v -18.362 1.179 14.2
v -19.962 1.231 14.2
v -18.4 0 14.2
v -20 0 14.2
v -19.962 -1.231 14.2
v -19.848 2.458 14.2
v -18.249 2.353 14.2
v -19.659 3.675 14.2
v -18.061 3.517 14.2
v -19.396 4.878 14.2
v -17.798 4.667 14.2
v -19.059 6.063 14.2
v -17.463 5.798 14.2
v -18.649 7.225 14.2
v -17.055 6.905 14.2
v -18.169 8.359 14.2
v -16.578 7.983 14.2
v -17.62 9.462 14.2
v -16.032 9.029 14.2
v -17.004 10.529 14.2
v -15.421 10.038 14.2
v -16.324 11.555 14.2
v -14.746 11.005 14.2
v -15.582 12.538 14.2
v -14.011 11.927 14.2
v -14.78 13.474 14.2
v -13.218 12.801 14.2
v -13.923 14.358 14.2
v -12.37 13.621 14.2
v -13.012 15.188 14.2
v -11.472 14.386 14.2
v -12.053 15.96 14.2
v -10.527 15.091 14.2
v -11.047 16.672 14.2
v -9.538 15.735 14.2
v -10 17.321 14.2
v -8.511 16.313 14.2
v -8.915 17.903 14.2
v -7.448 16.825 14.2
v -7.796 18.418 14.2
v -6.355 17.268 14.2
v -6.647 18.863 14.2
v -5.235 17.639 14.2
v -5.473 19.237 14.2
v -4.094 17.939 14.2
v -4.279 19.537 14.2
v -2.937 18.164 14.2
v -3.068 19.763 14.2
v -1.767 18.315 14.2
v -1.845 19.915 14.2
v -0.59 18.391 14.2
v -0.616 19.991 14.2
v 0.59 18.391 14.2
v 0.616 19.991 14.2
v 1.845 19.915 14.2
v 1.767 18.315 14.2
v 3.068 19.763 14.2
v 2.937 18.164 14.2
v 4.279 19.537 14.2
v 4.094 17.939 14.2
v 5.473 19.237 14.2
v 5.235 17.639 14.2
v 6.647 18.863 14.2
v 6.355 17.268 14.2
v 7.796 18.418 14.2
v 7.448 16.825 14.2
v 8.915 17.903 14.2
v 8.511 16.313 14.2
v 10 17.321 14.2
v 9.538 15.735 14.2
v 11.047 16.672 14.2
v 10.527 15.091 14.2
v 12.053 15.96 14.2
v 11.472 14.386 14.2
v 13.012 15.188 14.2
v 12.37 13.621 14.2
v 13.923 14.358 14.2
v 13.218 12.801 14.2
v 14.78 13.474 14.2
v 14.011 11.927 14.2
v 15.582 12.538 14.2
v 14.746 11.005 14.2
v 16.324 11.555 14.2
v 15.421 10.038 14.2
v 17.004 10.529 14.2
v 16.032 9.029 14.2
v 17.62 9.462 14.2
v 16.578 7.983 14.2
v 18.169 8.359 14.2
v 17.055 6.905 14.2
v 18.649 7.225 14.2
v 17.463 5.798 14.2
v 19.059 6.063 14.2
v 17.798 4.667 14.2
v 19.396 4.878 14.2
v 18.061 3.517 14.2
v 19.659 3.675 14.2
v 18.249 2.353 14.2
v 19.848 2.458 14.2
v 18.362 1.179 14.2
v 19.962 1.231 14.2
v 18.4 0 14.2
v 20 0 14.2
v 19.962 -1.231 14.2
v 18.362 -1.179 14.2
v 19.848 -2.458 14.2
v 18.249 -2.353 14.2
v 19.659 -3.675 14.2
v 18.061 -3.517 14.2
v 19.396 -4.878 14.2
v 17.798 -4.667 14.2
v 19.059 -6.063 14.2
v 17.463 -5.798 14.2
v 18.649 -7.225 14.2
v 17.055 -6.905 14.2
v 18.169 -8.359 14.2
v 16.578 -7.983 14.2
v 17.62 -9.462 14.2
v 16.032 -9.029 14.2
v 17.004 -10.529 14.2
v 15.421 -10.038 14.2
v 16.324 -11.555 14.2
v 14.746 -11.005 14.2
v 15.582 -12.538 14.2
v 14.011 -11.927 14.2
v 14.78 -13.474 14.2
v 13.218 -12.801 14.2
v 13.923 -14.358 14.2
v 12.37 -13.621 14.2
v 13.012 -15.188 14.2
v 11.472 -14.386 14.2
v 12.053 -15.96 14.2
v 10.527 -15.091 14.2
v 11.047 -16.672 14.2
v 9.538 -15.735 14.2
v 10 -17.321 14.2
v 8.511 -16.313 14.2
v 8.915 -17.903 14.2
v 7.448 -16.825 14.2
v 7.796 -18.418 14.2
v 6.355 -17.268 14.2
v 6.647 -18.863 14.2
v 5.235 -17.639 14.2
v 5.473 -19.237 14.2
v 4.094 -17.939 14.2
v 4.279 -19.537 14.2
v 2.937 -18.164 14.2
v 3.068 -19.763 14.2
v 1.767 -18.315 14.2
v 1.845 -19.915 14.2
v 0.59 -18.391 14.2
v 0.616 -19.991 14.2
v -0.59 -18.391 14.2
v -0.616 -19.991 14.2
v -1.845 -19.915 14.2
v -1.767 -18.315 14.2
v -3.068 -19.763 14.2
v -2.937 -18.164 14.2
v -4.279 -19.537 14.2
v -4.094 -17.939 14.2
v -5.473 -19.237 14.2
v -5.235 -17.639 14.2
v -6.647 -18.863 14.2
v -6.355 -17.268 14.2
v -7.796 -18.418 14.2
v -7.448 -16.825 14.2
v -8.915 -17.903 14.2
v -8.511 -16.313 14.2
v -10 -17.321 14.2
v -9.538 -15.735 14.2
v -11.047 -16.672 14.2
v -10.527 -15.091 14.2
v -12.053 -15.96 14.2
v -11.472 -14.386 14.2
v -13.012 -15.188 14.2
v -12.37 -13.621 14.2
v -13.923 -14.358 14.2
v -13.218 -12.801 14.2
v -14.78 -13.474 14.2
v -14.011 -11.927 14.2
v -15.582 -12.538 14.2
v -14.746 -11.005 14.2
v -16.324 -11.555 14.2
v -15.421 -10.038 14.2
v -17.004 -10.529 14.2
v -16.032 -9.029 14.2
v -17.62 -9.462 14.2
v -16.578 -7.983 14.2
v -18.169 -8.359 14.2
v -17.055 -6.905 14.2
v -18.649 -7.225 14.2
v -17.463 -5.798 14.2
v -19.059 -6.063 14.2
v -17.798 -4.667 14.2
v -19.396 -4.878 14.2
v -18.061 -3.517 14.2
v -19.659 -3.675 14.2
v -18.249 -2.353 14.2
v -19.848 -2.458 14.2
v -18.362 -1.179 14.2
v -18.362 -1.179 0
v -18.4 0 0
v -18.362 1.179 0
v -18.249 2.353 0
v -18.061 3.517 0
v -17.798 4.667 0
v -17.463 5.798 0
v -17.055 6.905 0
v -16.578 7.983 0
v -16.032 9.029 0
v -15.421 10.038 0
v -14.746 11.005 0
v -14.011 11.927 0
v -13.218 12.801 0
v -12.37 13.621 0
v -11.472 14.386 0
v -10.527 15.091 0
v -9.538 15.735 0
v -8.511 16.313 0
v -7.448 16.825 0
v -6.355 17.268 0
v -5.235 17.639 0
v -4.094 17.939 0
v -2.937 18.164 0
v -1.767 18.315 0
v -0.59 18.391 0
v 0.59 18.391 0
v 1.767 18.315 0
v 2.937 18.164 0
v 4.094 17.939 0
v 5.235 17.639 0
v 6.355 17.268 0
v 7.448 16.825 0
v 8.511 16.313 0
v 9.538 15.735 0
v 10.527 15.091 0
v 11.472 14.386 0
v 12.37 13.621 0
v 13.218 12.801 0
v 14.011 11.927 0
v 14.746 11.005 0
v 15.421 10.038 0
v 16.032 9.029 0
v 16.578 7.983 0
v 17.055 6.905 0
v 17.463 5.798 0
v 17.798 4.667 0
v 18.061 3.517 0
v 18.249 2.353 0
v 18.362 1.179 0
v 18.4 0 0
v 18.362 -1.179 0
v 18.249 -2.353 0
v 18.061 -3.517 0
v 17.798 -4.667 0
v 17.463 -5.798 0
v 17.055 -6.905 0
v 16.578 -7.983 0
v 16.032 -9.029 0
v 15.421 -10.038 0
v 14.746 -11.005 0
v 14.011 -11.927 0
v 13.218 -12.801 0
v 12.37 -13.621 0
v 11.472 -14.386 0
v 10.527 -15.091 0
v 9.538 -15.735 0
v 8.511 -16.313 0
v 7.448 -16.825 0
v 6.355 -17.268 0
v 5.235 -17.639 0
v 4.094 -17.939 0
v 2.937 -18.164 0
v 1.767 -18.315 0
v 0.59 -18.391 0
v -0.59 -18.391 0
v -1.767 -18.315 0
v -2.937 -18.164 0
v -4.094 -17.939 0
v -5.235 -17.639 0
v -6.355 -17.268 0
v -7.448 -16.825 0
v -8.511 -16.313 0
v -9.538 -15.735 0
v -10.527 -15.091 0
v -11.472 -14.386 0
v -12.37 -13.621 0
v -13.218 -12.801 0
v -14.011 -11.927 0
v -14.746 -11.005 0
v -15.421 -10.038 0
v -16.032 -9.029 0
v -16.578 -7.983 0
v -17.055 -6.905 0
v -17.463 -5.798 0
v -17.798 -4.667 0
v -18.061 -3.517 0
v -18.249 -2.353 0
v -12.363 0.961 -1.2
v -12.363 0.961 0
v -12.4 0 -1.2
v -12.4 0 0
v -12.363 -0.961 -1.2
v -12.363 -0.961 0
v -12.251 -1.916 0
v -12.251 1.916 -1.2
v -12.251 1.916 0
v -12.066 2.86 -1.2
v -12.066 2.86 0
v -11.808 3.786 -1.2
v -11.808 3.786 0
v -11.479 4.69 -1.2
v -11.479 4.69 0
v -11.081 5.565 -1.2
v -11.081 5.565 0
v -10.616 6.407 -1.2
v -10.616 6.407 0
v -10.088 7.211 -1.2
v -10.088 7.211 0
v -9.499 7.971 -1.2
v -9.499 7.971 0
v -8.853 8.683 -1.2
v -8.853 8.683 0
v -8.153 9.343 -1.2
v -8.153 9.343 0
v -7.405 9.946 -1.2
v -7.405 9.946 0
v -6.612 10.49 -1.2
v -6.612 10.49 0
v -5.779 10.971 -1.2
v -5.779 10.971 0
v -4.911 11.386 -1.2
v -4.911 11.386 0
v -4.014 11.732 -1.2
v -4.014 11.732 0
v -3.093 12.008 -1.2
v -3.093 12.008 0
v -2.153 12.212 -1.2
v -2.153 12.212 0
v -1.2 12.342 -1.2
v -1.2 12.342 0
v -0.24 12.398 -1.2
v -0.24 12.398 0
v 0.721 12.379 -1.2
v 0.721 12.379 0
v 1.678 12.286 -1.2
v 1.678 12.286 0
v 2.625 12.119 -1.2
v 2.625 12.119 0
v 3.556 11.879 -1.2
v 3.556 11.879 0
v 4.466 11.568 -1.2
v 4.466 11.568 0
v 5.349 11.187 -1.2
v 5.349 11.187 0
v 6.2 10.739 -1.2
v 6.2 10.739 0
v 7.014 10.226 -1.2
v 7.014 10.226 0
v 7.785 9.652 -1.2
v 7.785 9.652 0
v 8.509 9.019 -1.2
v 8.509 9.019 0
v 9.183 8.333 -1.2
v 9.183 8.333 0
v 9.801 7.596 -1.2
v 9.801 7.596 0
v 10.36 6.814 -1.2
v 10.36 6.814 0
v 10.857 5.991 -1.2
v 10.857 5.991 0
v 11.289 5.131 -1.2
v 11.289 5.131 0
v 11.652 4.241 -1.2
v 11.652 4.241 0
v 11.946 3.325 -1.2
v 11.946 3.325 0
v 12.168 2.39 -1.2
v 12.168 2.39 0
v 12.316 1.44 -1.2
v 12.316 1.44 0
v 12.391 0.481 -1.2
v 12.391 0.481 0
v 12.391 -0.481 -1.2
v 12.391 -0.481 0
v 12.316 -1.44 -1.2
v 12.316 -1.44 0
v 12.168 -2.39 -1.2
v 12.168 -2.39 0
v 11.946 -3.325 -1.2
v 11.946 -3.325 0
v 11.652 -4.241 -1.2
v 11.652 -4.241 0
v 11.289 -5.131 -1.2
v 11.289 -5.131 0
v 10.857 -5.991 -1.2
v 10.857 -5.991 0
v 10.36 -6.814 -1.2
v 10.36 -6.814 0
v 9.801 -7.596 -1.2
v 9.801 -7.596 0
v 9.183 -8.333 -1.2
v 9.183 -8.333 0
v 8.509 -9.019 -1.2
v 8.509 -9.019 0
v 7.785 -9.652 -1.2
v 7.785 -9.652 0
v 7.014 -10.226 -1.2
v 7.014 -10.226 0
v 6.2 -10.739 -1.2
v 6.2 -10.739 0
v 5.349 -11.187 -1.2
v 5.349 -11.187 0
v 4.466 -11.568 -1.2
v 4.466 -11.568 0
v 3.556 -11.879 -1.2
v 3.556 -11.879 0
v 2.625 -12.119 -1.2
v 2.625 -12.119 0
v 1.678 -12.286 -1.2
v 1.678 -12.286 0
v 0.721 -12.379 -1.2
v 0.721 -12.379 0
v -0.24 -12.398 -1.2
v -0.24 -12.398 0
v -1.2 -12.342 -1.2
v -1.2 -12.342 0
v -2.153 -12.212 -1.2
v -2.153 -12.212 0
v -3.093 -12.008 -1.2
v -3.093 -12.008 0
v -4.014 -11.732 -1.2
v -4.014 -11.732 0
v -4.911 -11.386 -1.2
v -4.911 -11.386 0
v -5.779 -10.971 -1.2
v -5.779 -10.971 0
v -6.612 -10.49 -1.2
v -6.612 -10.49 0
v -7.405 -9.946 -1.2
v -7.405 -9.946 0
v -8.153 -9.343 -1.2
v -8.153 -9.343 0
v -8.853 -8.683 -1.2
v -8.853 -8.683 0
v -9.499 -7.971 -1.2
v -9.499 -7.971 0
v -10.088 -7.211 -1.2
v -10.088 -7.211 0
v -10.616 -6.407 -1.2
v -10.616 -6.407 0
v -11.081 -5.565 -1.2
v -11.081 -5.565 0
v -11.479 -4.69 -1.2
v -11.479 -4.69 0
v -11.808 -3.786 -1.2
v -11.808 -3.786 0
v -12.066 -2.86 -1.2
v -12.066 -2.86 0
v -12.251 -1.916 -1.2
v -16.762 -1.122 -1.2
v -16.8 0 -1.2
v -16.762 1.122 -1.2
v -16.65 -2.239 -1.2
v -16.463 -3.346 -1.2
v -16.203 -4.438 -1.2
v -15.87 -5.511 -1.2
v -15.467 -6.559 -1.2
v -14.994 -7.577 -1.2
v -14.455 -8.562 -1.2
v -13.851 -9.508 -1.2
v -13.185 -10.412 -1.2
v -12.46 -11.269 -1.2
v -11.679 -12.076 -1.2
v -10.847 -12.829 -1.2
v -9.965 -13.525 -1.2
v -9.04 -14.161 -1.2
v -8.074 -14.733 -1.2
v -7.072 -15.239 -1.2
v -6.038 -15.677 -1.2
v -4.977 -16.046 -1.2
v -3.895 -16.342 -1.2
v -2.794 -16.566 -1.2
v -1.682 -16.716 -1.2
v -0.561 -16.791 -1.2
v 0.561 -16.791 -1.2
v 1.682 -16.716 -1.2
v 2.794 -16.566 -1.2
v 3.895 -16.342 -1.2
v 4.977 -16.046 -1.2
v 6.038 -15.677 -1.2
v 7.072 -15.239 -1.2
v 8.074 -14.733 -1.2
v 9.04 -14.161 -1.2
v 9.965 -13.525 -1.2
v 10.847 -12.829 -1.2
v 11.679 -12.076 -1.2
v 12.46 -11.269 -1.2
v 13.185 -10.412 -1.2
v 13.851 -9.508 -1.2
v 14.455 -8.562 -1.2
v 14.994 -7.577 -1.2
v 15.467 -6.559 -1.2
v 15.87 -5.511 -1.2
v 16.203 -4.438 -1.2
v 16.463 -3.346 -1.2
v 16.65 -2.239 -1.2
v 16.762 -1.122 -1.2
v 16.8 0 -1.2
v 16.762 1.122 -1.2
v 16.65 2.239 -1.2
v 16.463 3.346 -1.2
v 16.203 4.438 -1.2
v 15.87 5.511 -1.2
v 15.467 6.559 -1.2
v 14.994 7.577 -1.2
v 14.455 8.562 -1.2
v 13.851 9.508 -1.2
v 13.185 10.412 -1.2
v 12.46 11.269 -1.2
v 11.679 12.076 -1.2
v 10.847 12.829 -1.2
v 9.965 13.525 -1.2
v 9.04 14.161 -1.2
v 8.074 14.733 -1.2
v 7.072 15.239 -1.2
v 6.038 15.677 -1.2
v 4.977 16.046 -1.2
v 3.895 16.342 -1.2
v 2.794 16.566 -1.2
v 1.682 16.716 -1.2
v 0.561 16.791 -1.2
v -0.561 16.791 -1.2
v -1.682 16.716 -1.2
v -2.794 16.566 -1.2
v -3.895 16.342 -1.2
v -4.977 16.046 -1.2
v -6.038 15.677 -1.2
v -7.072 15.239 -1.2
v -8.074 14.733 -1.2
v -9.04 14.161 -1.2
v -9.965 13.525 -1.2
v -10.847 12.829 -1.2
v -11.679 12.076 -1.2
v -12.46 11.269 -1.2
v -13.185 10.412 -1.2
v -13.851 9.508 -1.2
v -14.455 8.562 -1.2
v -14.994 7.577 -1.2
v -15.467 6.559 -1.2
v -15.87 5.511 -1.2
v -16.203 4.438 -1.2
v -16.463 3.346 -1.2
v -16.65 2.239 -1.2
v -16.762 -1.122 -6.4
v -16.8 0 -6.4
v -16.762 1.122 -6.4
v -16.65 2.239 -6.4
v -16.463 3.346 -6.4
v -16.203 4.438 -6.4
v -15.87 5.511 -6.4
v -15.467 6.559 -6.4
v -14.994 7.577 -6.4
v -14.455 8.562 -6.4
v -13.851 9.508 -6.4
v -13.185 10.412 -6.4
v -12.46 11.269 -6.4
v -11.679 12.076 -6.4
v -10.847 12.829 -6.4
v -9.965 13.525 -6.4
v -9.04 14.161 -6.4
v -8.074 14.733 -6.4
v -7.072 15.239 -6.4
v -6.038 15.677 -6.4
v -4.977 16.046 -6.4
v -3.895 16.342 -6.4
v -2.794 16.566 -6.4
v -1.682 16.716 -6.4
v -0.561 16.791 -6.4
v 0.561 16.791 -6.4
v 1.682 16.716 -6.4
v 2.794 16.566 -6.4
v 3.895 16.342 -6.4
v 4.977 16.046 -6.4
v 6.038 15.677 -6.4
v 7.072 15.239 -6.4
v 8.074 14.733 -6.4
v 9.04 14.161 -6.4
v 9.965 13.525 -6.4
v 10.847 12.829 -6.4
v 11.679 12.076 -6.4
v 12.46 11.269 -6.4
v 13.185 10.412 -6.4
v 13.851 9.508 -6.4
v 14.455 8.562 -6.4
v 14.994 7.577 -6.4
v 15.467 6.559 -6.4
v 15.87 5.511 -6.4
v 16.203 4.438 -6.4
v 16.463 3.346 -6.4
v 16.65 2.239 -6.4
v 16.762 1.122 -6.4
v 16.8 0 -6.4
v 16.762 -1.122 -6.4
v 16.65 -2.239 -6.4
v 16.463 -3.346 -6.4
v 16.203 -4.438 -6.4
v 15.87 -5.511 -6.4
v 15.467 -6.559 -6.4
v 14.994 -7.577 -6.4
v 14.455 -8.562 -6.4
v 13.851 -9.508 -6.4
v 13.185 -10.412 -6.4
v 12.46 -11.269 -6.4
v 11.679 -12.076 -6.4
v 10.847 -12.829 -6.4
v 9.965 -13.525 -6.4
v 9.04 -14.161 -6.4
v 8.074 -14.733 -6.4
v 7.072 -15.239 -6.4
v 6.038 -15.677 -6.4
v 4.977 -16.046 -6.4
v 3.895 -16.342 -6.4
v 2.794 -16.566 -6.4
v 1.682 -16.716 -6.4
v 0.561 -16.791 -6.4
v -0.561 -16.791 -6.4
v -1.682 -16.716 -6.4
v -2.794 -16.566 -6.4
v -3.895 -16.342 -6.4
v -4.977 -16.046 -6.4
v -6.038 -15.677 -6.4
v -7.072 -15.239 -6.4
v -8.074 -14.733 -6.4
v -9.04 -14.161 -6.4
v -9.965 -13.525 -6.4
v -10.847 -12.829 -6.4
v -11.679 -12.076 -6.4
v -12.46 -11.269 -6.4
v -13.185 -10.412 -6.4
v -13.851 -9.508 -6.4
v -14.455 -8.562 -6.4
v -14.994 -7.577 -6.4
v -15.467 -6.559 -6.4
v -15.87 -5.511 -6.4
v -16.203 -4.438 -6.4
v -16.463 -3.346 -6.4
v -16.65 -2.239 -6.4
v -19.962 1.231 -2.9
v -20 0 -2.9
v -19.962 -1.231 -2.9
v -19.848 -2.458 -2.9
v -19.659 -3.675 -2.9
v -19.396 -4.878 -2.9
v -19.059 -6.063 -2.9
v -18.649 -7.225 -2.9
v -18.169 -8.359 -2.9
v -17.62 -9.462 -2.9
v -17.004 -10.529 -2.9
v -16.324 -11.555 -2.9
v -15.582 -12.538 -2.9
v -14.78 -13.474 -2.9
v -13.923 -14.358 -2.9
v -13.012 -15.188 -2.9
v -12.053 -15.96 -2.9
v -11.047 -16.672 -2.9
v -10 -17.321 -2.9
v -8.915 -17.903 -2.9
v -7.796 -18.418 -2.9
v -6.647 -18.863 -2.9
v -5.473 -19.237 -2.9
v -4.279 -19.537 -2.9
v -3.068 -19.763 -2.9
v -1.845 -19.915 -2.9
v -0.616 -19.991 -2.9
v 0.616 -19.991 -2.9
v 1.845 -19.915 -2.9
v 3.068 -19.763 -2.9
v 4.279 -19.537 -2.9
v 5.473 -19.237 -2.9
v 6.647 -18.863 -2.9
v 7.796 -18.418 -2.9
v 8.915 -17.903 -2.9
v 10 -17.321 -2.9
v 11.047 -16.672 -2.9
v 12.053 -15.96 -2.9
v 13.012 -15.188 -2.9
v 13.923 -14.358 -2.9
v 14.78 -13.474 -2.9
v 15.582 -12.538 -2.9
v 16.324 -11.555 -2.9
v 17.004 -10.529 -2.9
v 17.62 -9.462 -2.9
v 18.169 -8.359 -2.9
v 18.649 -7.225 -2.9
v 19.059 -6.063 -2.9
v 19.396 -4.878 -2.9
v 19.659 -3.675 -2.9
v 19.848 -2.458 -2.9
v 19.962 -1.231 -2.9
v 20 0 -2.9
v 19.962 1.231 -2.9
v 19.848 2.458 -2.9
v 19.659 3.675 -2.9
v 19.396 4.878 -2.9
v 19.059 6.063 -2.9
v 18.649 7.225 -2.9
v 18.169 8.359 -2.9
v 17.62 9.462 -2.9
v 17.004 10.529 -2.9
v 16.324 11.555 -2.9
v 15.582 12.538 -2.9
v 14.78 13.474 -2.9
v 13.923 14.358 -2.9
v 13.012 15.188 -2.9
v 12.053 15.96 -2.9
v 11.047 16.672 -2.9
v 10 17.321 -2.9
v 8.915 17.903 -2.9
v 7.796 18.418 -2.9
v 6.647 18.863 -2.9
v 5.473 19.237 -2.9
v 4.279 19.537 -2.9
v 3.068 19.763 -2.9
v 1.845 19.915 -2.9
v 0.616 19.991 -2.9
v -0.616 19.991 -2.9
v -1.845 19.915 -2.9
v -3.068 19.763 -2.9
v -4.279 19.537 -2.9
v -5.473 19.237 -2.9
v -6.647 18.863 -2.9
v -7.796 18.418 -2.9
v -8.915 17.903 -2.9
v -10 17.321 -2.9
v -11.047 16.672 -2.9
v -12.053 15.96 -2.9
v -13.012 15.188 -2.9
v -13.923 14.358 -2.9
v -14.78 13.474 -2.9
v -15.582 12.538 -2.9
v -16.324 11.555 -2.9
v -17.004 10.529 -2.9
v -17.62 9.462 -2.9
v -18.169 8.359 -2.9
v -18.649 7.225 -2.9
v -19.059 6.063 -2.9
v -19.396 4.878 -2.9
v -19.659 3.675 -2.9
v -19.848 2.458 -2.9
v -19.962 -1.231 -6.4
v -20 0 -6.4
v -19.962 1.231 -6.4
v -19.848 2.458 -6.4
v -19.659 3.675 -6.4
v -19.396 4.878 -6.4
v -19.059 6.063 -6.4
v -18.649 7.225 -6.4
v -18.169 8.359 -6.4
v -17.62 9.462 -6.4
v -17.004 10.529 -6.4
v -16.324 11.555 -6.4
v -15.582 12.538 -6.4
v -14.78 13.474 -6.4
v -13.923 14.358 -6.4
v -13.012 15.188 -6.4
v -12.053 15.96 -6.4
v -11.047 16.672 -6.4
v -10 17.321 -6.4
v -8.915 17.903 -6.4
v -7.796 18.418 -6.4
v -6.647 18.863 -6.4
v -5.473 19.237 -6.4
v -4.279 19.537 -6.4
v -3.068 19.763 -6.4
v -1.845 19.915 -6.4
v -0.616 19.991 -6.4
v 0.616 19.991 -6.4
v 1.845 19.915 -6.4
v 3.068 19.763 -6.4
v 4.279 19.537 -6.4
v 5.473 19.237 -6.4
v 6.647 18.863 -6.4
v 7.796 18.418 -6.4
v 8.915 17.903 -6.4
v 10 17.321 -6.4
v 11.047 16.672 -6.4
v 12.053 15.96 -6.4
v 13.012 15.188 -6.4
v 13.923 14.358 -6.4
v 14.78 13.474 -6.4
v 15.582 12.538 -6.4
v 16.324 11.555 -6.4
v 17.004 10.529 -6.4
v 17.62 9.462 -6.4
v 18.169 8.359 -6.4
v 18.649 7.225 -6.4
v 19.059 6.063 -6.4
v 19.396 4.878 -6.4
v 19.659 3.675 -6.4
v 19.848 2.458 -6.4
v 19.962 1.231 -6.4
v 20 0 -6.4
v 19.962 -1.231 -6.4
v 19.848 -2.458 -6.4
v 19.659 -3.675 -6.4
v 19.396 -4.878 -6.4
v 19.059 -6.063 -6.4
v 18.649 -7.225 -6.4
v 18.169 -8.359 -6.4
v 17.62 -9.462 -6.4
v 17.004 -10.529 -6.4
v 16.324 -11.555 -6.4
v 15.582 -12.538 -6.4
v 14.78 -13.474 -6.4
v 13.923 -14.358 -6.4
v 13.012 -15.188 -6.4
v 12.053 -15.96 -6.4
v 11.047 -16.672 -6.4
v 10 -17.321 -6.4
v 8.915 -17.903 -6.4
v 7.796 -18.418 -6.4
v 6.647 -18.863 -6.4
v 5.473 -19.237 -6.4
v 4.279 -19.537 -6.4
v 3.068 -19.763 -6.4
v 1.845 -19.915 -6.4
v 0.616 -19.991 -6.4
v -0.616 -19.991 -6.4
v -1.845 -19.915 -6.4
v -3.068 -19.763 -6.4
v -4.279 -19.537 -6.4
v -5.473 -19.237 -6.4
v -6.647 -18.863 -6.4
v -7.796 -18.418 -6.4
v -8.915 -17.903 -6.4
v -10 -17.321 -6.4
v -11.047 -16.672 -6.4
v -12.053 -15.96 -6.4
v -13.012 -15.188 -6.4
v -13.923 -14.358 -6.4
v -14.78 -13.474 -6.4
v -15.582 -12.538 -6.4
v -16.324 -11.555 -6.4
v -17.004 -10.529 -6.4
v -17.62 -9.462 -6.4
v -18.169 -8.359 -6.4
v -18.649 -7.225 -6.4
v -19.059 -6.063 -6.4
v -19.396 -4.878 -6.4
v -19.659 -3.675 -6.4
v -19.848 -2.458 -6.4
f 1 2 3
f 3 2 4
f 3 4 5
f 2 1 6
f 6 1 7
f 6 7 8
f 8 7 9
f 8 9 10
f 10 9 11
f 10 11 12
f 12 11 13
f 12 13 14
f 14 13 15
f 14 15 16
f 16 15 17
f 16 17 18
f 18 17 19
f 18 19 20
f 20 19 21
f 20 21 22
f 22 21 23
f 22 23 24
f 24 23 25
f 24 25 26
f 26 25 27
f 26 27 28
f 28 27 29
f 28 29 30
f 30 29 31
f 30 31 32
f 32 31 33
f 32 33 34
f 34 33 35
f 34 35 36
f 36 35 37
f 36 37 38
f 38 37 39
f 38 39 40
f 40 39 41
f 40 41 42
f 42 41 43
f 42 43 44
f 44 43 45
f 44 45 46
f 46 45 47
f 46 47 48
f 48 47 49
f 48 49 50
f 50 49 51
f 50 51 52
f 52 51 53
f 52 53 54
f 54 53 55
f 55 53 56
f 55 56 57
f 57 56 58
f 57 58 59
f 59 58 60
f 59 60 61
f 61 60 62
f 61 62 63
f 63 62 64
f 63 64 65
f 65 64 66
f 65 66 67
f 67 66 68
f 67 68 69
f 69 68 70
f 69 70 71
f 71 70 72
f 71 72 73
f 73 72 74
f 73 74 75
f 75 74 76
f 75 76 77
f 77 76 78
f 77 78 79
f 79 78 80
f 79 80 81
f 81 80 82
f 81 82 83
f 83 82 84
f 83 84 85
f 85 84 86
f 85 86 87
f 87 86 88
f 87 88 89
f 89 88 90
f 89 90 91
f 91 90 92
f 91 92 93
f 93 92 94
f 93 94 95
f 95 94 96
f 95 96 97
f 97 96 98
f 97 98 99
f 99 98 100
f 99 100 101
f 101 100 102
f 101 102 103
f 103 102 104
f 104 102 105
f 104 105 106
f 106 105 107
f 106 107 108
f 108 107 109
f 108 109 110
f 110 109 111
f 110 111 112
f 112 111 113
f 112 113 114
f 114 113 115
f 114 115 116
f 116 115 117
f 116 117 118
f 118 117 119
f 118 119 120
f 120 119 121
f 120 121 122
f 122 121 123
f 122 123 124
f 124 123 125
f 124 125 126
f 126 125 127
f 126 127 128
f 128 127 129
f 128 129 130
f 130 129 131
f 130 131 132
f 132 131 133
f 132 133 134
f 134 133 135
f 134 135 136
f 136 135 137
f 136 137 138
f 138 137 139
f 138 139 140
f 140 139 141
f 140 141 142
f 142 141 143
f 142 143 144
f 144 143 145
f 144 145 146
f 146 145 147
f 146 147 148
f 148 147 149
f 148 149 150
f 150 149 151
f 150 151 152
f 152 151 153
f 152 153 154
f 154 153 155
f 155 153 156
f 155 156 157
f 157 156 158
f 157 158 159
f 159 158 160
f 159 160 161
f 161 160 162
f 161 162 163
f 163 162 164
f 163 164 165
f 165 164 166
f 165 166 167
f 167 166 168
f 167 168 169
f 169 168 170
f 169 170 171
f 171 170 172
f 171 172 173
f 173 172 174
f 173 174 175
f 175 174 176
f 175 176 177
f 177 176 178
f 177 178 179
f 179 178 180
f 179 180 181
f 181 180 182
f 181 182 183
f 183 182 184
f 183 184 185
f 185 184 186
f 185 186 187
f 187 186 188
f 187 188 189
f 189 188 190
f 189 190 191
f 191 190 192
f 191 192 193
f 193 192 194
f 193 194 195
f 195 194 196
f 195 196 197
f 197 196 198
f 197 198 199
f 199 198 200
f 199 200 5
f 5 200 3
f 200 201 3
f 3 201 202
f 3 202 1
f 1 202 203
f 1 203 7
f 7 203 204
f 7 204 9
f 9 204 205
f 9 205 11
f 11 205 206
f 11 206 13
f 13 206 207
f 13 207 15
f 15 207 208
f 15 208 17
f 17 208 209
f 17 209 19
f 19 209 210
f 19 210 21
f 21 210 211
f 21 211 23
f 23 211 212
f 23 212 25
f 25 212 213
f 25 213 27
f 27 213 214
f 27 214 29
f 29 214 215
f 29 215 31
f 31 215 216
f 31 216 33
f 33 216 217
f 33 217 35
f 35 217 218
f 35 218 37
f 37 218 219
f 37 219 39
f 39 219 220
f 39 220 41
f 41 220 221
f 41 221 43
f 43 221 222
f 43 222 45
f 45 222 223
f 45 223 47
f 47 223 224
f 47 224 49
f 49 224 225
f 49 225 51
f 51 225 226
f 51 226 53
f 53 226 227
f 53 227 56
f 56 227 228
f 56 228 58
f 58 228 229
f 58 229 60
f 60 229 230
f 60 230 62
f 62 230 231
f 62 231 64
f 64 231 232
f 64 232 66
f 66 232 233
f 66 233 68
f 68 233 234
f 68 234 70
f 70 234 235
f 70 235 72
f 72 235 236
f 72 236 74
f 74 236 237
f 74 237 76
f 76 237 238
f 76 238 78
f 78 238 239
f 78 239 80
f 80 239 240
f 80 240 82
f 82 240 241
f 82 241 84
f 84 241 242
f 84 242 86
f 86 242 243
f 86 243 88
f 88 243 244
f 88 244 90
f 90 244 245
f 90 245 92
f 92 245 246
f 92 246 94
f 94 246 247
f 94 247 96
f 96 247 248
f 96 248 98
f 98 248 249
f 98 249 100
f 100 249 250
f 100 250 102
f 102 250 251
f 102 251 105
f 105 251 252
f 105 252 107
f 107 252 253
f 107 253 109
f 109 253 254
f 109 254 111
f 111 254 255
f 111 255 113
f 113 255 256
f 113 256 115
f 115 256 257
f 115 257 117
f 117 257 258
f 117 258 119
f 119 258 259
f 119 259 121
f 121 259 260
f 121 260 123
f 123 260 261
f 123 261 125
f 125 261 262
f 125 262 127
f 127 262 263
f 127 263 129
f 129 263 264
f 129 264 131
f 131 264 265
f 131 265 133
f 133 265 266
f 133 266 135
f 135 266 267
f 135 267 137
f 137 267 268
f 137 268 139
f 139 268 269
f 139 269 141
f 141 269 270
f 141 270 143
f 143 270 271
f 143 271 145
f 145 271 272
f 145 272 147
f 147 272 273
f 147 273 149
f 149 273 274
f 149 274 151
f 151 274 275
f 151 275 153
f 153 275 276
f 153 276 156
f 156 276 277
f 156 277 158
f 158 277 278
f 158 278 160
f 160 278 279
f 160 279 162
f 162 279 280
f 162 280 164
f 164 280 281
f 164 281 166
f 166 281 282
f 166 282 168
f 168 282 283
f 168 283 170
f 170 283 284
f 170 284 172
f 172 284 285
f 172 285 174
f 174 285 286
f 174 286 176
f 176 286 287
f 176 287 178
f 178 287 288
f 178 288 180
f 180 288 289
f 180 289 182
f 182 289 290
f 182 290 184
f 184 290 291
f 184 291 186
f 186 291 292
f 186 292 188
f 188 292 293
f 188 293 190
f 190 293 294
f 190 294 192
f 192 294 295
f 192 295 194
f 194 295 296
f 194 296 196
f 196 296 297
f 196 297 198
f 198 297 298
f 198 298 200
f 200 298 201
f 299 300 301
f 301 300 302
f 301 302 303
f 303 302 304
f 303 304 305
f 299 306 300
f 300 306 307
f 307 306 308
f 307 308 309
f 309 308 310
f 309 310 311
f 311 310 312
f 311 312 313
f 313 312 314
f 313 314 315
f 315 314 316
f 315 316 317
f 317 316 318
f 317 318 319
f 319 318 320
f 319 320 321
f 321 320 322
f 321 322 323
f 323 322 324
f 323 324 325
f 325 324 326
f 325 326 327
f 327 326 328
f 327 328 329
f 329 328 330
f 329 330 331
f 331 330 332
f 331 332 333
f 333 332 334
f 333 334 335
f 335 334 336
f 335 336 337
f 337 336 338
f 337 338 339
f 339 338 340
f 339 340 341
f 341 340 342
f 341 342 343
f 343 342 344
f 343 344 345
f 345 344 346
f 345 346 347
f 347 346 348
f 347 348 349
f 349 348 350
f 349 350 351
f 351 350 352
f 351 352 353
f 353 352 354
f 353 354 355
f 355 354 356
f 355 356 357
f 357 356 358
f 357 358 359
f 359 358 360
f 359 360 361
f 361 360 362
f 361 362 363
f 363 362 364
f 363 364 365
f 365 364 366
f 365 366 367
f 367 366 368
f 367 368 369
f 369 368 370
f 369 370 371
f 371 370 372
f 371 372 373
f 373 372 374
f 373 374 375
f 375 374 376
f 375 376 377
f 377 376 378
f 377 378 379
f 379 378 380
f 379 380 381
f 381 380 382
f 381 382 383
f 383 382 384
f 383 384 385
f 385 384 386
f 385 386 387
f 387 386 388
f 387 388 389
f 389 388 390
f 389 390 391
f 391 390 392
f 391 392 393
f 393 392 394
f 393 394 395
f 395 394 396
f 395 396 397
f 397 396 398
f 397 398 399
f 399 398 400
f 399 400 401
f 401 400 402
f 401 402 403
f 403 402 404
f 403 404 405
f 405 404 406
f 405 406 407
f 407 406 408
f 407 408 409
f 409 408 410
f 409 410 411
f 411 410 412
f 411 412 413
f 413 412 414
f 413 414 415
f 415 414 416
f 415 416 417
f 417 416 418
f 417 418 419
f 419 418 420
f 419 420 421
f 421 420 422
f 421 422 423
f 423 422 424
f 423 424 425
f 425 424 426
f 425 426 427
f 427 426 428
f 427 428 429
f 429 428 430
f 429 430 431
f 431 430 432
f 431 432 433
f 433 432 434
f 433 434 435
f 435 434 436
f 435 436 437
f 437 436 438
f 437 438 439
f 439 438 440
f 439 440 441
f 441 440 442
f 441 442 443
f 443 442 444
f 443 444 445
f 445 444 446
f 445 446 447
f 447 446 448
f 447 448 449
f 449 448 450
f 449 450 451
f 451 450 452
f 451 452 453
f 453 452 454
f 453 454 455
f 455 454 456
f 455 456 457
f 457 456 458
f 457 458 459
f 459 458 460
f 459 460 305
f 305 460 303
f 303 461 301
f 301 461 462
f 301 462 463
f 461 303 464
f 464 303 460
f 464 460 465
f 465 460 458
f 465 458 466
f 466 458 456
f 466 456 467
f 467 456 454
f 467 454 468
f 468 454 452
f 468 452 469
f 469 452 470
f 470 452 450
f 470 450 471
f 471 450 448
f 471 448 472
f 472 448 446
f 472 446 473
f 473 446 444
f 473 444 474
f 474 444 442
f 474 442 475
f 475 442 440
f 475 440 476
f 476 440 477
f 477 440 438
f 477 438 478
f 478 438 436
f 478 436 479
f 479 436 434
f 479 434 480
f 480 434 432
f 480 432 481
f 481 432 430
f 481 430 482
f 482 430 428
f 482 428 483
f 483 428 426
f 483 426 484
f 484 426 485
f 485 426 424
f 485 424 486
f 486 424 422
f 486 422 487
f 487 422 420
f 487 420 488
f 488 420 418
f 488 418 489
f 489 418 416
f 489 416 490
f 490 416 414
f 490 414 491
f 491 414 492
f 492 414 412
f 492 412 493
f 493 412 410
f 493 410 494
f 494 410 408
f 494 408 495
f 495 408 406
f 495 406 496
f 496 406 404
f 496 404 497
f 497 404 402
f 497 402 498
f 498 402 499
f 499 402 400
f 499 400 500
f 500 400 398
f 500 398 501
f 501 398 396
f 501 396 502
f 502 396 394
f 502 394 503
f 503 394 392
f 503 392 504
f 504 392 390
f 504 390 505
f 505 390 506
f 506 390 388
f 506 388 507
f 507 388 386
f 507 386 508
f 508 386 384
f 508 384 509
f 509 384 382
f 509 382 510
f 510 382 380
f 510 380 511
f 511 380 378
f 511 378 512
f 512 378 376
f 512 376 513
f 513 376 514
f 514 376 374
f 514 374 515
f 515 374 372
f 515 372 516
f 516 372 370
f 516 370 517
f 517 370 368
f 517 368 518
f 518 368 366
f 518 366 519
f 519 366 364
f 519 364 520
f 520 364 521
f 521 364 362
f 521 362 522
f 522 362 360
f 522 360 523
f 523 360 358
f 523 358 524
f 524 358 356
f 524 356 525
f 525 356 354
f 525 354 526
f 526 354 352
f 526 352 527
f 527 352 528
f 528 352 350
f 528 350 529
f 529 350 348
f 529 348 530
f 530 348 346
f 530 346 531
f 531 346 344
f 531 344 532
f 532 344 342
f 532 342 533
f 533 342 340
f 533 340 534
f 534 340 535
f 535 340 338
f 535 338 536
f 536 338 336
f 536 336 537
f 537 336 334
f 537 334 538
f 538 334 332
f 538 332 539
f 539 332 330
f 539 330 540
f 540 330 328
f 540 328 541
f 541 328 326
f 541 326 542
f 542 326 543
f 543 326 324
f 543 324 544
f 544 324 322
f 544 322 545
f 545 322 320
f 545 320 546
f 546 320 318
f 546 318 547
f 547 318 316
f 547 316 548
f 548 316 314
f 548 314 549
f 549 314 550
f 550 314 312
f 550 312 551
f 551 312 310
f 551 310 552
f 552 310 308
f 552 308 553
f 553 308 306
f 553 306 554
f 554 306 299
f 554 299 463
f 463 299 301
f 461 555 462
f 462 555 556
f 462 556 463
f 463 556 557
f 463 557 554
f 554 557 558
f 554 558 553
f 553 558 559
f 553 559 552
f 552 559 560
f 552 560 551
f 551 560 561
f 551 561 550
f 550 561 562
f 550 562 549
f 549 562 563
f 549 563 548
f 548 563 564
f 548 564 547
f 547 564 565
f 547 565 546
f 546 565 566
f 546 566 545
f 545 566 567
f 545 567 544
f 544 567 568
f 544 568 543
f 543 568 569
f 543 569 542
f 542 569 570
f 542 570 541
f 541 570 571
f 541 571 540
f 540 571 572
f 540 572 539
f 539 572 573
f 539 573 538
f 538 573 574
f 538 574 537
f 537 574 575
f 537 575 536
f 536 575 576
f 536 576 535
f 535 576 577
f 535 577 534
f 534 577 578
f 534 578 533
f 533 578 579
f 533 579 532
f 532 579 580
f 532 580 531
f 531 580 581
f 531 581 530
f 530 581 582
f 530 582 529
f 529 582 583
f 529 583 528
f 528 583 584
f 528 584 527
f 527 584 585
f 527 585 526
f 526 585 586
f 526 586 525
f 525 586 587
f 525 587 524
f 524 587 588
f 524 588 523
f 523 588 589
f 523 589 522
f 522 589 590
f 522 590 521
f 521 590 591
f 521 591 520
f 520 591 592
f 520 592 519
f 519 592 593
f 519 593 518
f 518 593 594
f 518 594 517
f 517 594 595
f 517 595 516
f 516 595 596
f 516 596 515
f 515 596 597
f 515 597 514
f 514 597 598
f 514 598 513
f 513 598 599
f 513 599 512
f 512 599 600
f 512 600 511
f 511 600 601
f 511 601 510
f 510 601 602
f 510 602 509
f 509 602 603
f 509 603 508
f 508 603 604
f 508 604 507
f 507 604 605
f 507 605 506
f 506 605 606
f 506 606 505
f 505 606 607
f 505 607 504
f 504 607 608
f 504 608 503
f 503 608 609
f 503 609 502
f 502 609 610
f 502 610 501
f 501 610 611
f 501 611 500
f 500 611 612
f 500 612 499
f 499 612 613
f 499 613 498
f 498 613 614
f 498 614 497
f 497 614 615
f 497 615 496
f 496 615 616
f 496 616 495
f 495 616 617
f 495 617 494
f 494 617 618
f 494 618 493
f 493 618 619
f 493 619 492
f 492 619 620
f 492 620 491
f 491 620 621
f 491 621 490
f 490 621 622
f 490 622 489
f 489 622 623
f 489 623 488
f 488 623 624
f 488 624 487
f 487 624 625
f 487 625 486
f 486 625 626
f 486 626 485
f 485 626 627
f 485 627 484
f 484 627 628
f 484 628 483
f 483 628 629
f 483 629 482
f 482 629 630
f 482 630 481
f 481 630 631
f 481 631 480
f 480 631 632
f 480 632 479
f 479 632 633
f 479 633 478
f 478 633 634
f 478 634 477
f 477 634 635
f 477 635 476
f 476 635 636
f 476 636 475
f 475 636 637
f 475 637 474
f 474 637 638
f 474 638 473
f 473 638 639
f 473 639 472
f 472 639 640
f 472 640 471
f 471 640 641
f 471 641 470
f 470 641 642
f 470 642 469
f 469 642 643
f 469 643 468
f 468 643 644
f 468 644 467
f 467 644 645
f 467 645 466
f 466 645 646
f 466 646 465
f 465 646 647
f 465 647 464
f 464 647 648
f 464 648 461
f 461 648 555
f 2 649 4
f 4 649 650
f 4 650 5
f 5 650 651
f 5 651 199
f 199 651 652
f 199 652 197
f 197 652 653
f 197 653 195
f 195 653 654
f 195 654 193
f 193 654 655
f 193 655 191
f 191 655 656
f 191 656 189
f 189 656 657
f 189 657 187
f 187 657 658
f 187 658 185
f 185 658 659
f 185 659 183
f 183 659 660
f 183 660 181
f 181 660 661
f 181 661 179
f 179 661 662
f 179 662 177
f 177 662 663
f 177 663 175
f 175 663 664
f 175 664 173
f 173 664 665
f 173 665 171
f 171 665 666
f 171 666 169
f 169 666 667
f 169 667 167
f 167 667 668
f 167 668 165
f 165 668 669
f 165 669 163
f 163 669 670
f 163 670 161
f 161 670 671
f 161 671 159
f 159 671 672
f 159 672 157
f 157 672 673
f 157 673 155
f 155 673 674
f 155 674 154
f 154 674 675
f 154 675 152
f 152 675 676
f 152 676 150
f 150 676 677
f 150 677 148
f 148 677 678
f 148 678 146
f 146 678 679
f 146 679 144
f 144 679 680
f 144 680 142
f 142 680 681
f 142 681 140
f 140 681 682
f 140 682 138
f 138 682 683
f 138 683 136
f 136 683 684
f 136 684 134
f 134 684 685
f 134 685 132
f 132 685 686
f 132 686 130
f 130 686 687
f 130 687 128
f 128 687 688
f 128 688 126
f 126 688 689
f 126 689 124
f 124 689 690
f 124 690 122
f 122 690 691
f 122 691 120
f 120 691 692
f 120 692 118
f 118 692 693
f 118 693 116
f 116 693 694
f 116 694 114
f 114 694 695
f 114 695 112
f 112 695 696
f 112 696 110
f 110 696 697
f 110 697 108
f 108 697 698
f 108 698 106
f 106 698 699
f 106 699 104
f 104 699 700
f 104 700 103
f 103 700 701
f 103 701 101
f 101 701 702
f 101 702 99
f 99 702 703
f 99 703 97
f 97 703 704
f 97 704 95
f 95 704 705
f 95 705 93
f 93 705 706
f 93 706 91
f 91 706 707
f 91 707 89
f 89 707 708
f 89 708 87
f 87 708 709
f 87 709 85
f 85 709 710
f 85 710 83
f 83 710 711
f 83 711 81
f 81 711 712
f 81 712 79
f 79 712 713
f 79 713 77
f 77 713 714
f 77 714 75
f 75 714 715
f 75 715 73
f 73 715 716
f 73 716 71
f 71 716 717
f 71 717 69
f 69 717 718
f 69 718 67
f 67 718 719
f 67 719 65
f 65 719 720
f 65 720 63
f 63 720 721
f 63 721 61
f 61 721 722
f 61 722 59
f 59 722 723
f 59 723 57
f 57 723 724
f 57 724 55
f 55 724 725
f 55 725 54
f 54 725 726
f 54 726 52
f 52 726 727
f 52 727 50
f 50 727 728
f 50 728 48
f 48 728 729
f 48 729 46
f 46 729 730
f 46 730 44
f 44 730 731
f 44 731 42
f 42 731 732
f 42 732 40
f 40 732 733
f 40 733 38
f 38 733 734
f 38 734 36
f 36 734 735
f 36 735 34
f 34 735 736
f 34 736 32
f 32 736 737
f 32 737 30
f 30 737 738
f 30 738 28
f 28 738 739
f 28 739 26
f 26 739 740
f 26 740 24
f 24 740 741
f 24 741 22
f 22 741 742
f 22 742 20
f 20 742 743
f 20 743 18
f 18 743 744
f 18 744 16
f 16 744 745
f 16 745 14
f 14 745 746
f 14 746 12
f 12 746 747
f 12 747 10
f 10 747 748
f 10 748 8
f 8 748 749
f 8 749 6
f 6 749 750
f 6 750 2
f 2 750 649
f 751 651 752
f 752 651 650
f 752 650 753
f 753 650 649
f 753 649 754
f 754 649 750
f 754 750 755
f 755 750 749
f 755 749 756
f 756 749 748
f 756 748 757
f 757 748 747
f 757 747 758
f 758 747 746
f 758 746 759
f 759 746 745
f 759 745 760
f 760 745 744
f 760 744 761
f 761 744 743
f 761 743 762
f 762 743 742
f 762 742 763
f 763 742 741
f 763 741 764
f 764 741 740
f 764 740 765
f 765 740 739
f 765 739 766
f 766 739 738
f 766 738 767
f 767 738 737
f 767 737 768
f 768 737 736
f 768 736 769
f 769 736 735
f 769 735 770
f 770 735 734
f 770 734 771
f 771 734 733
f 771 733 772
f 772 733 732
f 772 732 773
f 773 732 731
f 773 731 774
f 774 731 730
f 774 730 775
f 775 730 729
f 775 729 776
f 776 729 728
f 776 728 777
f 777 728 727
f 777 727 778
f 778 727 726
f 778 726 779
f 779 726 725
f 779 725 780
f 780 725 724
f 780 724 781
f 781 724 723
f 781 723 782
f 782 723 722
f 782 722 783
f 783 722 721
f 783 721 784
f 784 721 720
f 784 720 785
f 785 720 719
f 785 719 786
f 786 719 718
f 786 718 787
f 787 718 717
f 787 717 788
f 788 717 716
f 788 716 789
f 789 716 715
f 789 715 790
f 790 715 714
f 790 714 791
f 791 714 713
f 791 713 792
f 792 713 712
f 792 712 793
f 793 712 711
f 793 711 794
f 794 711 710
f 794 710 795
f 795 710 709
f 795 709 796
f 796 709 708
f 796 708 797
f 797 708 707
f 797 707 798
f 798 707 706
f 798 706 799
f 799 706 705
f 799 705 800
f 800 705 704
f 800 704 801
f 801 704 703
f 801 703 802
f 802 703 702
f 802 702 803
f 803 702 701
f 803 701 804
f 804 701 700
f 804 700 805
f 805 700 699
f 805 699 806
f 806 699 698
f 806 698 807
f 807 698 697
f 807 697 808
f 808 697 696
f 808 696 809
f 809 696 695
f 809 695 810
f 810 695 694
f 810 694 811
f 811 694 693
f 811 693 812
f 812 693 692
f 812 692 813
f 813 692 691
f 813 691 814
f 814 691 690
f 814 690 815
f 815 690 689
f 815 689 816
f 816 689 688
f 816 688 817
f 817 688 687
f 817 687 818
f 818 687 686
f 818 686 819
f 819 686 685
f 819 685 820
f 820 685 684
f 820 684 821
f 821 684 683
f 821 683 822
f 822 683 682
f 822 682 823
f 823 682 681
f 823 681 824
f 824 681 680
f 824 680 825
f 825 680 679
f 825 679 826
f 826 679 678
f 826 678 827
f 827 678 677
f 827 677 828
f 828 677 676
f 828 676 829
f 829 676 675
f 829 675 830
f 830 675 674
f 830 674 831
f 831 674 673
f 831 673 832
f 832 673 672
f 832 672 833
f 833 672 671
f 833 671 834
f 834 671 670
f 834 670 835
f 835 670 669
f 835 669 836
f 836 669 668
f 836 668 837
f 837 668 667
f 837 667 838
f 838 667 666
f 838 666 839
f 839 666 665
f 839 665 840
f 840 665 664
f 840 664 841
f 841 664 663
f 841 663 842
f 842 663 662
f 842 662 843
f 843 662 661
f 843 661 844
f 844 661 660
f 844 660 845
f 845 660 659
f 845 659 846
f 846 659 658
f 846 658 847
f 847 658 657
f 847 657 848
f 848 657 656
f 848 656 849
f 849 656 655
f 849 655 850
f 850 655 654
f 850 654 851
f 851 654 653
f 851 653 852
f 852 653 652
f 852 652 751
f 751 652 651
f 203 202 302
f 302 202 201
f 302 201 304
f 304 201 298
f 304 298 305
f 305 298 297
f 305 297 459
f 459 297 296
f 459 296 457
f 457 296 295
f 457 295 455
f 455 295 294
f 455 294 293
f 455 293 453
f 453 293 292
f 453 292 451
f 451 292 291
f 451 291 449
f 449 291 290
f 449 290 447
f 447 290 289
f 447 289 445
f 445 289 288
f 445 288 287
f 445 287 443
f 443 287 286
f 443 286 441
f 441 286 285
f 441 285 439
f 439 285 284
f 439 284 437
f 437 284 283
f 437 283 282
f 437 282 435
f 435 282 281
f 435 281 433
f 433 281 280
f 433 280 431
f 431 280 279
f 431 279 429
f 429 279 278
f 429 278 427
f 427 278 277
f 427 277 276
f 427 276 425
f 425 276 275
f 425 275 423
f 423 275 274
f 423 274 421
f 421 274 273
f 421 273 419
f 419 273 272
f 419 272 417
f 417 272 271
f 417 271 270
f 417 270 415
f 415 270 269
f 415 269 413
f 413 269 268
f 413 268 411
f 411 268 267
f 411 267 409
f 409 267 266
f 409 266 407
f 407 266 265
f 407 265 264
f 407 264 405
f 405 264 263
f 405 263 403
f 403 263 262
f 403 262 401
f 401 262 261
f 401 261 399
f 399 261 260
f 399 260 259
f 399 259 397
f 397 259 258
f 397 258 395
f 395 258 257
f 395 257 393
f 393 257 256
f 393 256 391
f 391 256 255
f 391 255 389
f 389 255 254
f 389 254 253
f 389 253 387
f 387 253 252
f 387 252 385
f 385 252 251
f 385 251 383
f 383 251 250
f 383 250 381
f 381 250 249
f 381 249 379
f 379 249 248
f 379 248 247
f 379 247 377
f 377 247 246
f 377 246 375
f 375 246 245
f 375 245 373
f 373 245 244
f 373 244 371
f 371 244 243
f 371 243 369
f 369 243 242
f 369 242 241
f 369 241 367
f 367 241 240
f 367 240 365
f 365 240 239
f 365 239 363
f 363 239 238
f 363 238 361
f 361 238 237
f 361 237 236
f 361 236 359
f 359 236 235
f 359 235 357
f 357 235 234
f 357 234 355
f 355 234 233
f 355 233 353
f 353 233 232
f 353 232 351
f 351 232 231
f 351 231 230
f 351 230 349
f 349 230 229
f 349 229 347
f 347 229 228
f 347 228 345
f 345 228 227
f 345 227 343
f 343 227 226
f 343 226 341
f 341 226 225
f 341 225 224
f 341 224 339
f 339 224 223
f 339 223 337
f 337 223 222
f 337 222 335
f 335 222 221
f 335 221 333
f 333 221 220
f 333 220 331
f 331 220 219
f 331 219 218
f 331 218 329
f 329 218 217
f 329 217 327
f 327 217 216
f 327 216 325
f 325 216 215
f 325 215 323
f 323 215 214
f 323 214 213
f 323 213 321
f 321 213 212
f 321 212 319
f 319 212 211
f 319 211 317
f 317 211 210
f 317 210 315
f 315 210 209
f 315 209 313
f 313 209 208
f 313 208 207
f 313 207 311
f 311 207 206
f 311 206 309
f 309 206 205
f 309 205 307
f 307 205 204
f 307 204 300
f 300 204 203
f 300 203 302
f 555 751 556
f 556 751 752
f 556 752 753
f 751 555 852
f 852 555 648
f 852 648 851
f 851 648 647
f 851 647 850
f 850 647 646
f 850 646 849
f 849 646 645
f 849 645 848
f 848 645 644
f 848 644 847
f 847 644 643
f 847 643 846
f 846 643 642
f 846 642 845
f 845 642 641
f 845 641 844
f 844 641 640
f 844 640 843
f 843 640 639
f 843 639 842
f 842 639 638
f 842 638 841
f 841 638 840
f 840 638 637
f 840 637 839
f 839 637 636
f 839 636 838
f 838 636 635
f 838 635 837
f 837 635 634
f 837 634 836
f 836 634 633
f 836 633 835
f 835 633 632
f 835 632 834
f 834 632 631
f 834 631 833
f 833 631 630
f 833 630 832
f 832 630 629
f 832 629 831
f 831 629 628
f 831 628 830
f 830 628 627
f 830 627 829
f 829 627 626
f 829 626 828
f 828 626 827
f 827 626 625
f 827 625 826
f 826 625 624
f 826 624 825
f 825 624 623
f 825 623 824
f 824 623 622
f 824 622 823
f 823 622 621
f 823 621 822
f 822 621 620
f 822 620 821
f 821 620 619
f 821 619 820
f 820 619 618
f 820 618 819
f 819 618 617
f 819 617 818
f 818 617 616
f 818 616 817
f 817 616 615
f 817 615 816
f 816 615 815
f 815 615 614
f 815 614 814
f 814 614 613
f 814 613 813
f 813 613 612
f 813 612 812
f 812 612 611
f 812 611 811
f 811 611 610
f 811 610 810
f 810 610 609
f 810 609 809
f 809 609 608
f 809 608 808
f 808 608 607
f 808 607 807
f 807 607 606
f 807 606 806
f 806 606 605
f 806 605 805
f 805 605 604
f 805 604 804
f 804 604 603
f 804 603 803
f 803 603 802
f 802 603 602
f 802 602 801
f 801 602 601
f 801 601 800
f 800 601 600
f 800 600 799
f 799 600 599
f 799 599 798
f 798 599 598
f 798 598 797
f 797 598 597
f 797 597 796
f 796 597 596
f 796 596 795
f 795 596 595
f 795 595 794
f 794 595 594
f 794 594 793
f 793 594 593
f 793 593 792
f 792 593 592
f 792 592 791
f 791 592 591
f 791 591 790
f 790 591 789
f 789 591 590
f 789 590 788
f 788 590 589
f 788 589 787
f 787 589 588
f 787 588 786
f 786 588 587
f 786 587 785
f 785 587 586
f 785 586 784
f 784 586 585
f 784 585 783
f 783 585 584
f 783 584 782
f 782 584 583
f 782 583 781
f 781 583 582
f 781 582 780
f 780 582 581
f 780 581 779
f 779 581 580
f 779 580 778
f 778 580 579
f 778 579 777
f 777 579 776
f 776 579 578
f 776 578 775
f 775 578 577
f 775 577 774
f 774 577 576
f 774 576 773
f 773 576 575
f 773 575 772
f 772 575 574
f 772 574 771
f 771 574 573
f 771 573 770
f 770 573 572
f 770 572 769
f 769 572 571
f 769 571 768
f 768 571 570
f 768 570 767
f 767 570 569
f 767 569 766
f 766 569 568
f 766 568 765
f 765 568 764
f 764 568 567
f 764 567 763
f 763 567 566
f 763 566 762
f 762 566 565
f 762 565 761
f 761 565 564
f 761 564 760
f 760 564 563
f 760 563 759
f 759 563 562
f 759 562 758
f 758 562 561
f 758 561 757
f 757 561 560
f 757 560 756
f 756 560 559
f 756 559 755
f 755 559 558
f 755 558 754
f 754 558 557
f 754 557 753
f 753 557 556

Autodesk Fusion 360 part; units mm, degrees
sketch "Sketch1" plane through (0, 0, 0) normal (0, 0, 1) x (1, 0, 0)
  circle A0 centre (0, 0) radius 20
  circle A1 centre (0, 0) radius 18.4
  circle A2 centre (0, 0) radius 12.4
  circle A3 centre (0, 0) radius 16.8
  dimension "d1" = 40
  dimension "d2" = -1.6
  dimension "d3" = -7.6
  dimension "d4" = -3.2
extrude "Extrude1" add sketch "Sketch1" against normal blind 6.4 contours A0 | A1
extrude "Extrude2" add sketch "Sketch1" against normal blind 1.2 contours A3
extrude "Extrude3" add sketch "Sketch1" along normal blind 9.2 contours A0
extrude "Extrude4" add 1 faces at (19.3922, -0.9936, 9.2) along direction (0, 0, 1) blind 5
